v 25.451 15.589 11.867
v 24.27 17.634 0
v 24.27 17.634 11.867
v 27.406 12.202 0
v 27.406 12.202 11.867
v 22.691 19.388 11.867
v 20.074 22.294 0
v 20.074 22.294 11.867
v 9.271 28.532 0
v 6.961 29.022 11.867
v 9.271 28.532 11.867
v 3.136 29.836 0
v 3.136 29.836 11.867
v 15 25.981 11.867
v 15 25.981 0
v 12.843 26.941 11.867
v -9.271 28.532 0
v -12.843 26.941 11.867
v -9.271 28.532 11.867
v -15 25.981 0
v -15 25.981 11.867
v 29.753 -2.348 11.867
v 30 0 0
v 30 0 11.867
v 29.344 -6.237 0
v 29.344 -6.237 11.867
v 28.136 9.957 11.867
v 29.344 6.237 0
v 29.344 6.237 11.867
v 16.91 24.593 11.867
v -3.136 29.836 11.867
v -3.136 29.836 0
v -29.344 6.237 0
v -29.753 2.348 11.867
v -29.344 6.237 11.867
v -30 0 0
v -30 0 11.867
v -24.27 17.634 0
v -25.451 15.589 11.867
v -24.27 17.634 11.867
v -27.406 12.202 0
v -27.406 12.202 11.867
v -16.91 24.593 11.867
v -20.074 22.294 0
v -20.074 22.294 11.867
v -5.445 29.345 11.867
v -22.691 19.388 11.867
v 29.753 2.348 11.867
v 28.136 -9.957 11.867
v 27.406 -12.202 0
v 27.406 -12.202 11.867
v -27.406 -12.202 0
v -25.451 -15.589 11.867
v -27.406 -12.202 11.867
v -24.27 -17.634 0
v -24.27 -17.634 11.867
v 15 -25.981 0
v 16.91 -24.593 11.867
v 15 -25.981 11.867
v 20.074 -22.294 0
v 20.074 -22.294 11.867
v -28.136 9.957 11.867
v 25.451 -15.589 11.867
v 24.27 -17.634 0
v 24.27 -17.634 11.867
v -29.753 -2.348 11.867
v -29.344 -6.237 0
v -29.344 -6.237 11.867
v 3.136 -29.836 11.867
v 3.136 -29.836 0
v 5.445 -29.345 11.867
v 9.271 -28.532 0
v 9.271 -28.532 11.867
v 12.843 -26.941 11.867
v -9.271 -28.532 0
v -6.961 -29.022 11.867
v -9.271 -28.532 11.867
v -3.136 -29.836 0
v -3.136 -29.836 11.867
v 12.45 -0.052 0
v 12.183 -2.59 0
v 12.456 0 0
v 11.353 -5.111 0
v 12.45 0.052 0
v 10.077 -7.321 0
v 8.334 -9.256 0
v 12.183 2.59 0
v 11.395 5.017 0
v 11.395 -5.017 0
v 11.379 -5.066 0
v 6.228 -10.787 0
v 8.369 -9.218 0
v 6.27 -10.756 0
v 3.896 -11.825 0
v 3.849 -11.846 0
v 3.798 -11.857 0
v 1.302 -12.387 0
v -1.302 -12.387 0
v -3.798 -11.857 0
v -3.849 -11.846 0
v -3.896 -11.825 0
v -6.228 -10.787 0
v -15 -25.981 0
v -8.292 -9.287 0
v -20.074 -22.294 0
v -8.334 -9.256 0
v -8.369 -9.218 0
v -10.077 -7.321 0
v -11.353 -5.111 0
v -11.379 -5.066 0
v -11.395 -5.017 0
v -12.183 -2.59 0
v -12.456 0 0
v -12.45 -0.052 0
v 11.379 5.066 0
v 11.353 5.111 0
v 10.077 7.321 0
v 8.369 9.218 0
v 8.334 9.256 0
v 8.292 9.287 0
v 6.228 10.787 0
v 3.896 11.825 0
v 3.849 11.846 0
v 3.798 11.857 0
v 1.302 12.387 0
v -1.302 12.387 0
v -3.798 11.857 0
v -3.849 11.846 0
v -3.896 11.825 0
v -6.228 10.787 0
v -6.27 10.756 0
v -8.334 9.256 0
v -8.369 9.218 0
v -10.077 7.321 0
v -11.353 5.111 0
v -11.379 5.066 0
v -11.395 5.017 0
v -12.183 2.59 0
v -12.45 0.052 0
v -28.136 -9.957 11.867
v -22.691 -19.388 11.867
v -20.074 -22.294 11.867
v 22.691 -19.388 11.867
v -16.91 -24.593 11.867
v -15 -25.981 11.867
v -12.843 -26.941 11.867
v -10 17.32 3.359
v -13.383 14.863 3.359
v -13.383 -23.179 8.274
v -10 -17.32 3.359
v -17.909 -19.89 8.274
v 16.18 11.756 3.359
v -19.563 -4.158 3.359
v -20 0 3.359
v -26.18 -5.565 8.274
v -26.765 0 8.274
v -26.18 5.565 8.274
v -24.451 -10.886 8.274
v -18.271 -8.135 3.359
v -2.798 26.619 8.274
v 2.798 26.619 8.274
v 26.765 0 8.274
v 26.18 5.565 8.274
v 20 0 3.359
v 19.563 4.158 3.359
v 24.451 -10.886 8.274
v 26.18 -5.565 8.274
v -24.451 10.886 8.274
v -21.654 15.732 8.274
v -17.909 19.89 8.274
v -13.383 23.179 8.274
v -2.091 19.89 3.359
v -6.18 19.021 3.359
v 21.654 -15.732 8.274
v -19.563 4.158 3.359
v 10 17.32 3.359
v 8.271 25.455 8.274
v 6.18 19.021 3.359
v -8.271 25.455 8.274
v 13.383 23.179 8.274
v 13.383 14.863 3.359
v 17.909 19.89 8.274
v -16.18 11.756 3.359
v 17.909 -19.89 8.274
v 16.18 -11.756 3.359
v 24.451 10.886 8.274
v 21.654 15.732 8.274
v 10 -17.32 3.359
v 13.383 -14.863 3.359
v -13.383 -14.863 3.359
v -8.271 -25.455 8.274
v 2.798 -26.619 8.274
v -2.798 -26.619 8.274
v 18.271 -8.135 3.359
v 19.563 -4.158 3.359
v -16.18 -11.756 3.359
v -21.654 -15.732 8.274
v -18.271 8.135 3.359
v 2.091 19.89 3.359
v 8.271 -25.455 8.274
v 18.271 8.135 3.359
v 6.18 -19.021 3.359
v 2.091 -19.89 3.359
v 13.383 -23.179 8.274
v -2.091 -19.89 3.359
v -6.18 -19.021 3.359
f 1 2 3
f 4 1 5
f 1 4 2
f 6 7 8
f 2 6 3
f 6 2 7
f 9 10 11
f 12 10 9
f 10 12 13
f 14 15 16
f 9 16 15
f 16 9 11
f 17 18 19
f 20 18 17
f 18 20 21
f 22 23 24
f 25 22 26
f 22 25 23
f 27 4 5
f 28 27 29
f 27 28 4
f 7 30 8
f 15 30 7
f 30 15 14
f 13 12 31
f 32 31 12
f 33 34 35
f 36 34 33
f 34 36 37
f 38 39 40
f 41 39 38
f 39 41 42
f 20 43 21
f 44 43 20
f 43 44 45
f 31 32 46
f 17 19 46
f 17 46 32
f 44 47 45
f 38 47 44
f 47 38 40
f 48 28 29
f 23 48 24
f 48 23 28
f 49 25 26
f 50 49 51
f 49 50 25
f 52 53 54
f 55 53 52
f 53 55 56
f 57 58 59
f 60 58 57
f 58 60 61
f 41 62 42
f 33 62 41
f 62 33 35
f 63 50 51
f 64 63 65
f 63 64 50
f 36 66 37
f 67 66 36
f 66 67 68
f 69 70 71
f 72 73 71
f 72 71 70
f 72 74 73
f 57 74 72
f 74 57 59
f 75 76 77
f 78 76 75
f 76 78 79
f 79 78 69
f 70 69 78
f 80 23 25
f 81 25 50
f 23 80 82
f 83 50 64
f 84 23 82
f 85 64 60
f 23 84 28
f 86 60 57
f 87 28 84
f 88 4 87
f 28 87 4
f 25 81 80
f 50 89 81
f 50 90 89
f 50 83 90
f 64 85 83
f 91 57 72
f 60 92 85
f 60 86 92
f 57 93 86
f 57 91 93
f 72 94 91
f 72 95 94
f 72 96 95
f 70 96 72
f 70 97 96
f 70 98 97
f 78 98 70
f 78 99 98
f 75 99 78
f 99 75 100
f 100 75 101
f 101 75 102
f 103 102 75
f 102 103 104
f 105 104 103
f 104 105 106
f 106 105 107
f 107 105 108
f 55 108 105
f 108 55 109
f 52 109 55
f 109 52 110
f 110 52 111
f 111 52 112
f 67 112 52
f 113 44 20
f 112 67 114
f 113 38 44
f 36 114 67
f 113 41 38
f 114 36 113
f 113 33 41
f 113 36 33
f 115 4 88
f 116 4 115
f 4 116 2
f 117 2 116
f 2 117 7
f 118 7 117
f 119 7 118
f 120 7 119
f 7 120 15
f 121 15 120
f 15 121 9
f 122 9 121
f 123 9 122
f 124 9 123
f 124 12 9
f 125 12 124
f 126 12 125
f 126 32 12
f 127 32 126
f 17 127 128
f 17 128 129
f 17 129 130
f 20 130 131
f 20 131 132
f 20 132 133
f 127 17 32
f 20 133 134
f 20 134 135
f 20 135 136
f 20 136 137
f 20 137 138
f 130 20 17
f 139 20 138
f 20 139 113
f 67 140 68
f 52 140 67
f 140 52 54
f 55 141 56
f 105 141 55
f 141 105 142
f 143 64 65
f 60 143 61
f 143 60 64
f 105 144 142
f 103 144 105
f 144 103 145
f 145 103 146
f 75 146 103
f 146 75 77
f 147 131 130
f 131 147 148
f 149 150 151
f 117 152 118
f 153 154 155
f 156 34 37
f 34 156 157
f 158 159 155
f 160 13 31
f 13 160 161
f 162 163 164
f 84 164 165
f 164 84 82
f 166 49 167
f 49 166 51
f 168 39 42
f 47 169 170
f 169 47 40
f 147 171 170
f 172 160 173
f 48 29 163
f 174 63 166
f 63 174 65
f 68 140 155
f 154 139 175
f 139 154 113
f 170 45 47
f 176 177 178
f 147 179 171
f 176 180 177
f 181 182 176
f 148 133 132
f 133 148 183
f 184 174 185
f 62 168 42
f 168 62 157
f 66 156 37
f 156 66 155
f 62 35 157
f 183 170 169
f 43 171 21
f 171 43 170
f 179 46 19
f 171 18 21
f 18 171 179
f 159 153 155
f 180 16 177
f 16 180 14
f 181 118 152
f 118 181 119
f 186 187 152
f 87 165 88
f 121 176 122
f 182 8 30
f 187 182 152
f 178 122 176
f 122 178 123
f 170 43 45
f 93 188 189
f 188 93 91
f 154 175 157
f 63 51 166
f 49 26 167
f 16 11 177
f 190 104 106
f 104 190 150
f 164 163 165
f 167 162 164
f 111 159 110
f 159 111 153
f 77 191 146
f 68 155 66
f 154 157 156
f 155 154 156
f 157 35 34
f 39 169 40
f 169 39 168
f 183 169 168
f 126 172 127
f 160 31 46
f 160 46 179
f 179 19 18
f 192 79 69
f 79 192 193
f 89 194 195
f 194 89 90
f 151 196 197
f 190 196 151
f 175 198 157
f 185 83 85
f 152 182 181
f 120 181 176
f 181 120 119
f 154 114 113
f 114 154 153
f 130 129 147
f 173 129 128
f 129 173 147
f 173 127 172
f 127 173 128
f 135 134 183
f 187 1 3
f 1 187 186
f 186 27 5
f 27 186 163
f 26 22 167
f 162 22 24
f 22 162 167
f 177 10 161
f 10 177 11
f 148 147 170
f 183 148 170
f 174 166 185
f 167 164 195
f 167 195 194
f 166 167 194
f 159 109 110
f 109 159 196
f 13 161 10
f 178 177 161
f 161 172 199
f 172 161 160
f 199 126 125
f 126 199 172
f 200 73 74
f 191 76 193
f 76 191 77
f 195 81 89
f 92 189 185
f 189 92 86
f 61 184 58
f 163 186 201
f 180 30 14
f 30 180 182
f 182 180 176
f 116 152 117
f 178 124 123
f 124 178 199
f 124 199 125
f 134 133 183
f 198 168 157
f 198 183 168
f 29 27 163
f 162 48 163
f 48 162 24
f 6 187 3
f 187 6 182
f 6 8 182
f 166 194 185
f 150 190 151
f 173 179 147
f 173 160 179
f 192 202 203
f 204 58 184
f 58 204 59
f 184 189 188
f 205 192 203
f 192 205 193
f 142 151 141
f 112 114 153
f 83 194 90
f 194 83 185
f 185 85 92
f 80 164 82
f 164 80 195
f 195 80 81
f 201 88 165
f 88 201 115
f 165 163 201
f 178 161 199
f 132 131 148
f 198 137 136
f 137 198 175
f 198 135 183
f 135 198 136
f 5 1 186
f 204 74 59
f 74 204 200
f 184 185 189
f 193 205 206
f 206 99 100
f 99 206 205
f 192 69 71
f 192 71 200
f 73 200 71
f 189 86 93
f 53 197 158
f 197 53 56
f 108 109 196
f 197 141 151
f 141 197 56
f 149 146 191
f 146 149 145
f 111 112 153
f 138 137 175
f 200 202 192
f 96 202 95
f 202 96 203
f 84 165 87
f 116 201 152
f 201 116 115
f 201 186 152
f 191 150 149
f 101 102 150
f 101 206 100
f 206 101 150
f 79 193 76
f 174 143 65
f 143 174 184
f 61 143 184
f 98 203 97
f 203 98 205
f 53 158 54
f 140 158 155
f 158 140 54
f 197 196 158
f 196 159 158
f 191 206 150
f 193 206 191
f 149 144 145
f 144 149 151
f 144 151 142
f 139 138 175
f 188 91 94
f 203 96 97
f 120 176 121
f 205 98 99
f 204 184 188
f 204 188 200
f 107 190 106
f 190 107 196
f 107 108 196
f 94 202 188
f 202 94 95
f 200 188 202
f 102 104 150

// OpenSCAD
//Peana cerámica Alarcos
//Diámetro interno=6cm
//Diámetro externo máximo=12cm
//Cilindro(D=6,H=5) vaciado por esfera(D=9)
difference(){
    cylinder(r=30,h=15,$fn=30);
    translate([0,0,38])
        sphere(r=40,$fn=30);
}
